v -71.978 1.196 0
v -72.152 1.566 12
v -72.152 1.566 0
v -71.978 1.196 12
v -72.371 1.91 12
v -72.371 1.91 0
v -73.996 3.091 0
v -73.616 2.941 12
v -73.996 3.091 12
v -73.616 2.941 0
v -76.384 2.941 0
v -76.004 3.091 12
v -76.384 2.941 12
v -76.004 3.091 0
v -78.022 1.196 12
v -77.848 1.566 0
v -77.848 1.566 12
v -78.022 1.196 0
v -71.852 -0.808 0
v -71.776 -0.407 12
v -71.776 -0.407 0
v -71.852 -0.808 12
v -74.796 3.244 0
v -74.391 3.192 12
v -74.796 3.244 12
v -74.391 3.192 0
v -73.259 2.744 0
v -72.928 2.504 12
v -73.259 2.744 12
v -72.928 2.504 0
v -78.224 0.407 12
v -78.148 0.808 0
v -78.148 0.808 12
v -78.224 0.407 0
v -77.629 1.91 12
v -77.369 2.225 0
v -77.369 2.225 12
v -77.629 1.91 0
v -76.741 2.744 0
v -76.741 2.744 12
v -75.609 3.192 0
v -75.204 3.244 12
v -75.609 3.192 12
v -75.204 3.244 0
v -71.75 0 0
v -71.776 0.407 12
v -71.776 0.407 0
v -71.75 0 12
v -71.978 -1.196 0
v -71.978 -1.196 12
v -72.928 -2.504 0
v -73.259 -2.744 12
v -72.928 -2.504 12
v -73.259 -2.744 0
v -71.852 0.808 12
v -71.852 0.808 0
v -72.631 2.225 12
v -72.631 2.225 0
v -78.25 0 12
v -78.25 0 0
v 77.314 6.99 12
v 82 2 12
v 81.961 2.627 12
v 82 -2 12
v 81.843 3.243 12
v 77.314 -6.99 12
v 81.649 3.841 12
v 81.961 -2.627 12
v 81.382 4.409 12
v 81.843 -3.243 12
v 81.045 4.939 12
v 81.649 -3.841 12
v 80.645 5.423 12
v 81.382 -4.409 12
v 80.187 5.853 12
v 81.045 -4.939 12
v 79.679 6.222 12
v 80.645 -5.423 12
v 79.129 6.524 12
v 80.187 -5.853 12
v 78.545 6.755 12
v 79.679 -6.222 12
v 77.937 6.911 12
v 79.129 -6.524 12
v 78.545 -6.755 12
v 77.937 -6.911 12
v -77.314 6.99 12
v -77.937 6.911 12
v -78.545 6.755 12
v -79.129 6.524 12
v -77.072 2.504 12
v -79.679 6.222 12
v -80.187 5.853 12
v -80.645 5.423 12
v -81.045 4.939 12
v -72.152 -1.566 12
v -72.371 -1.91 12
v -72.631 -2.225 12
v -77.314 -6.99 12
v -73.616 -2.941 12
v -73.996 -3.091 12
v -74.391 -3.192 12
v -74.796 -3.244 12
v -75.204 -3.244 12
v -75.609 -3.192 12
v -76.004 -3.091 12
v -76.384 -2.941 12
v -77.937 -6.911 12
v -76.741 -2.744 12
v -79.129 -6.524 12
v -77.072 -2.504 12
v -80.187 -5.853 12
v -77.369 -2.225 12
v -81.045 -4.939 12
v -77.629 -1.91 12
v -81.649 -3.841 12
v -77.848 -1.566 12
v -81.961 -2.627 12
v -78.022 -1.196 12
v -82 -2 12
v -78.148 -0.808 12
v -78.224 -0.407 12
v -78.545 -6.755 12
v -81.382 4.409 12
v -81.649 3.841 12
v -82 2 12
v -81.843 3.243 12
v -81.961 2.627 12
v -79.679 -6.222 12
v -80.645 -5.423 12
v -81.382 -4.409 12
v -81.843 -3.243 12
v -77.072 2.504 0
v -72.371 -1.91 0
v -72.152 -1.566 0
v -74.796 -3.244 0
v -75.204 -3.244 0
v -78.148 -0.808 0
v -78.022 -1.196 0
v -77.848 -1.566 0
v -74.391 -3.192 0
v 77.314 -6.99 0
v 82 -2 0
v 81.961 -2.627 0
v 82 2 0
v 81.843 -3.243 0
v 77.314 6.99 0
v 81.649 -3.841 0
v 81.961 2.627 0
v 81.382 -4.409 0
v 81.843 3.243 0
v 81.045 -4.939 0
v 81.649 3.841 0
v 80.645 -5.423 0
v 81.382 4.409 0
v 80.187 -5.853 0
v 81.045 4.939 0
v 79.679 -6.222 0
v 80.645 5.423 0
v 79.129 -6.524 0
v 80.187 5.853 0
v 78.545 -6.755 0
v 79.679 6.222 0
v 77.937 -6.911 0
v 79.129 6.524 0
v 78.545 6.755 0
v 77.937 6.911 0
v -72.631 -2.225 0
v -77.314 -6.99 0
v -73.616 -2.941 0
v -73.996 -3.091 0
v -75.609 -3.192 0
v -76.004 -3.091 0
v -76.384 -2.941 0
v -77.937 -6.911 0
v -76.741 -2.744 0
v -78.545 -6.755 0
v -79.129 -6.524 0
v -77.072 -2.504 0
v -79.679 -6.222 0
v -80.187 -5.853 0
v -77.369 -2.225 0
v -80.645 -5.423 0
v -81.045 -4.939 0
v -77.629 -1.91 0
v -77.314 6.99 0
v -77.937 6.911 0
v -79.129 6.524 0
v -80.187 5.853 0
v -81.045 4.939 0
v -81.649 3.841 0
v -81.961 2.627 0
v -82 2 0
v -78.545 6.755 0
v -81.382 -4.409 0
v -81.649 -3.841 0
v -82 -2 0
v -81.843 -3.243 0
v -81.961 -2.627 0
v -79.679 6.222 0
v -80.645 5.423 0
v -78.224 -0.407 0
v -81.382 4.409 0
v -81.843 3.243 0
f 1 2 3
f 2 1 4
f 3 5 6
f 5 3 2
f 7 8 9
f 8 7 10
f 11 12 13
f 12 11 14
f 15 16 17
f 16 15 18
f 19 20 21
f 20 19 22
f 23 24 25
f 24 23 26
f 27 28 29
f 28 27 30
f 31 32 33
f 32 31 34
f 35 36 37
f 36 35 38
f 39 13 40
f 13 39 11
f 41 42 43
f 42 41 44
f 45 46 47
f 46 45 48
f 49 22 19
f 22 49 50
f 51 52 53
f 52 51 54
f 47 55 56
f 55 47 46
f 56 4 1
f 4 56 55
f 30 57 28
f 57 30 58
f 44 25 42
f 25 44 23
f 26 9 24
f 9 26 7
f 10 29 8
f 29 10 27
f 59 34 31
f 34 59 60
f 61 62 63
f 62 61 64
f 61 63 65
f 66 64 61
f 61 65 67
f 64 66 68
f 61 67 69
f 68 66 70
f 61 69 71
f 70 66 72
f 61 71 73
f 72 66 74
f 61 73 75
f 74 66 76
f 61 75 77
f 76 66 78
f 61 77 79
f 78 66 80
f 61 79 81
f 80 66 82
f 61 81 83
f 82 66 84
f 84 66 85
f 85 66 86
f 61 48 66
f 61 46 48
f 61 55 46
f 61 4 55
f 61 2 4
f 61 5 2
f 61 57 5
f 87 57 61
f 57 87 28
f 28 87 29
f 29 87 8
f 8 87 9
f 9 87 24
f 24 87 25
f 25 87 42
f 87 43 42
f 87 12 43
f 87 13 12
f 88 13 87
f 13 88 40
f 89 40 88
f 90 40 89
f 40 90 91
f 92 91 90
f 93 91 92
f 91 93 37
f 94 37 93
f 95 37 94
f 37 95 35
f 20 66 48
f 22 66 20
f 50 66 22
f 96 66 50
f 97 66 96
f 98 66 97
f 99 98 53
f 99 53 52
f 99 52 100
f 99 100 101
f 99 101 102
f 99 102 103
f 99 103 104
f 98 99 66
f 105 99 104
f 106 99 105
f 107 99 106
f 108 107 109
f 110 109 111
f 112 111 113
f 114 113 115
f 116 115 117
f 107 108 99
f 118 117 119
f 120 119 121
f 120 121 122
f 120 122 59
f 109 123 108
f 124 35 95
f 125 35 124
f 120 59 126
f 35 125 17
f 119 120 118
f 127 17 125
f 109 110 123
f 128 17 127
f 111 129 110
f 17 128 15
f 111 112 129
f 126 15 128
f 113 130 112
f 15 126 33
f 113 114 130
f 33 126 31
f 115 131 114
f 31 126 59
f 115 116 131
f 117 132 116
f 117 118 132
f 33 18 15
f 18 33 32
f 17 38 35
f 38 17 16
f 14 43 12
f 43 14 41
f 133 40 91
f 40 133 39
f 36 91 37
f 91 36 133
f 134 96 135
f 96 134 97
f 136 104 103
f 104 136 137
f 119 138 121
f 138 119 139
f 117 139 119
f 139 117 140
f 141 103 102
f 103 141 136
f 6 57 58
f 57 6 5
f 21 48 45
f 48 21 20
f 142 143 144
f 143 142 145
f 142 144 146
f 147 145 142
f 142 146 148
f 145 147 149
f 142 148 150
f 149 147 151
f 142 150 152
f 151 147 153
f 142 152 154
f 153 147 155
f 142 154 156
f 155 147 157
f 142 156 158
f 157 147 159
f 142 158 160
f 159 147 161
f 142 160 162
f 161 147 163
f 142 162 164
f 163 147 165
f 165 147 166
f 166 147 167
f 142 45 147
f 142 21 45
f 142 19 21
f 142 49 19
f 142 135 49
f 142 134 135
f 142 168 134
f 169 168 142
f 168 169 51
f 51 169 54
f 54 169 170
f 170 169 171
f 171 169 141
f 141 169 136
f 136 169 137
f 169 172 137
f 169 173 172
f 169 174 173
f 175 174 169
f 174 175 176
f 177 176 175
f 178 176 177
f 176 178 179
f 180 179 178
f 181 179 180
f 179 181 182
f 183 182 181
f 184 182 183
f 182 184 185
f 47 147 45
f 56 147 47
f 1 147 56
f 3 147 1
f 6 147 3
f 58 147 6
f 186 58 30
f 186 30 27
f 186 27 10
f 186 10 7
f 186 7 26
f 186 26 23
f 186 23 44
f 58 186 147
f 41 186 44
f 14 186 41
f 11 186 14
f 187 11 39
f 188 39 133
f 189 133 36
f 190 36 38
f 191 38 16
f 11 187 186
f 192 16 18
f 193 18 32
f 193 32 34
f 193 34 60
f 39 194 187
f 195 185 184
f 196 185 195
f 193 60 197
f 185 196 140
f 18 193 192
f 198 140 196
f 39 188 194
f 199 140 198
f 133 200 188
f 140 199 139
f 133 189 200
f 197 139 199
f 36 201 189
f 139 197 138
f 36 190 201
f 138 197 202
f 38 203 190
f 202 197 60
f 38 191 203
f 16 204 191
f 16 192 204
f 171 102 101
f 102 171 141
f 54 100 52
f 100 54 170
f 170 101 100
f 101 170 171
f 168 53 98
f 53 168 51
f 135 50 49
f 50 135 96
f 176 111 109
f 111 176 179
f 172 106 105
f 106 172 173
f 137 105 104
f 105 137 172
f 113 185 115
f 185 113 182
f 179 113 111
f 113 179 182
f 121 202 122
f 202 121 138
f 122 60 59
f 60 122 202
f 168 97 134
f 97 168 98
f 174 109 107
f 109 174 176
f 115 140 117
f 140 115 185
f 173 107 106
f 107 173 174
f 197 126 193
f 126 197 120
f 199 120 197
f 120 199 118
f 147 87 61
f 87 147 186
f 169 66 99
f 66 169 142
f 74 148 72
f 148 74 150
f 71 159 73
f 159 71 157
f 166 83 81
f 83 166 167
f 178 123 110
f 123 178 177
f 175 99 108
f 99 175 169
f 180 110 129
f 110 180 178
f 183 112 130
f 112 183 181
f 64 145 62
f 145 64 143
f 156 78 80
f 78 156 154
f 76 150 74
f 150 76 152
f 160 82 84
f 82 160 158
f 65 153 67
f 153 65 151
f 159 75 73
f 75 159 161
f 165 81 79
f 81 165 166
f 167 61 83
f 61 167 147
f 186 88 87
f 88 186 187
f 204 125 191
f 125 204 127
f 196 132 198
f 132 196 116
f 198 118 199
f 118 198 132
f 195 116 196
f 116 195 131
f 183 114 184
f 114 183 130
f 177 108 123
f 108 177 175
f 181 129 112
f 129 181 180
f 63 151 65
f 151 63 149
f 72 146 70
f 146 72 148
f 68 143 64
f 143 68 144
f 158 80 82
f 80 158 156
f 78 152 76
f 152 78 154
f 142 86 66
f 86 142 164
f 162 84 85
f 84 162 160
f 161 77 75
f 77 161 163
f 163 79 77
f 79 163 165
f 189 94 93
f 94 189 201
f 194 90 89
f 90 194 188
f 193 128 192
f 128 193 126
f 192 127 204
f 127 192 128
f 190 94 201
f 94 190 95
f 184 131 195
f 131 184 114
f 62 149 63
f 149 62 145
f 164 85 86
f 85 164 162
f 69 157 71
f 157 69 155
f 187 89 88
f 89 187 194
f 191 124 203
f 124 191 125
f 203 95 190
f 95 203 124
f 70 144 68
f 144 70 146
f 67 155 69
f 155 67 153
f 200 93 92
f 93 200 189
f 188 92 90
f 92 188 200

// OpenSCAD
$fn = 50;


difference() {
	union() {
		hull() {
			translate(v = [-77.0000000000, 2.0000000000, 0]) {
				cylinder(h = 12, r = 5);
			}
			translate(v = [77.0000000000, 2.0000000000, 0]) {
				cylinder(h = 12, r = 5);
			}
			translate(v = [-77.0000000000, -2.0000000000, 0]) {
				cylinder(h = 12, r = 5);
			}
			translate(v = [77.0000000000, -2.0000000000, 0]) {
				cylinder(h = 12, r = 5);
			}
		}
	}
	union() {
		translate(v = [-75.0000000000, 0.0000000000, 0]) {
			cylinder(h = 12, r = 3.2500000000);
		}
		translate(v = [-75.0000000000, 0.0000000000, 0]) {
			cylinder(h = 12, r = 1.8000000000);
		}
		translate(v = [-75.0000000000, 0.0000000000, 0]) {
			cylinder(h = 12, r = 1.8000000000);
		}
		translate(v = [-75.0000000000, 0.0000000000, 0]) {
			cylinder(h = 12, r = 1.8000000000);
		}
	}
}
